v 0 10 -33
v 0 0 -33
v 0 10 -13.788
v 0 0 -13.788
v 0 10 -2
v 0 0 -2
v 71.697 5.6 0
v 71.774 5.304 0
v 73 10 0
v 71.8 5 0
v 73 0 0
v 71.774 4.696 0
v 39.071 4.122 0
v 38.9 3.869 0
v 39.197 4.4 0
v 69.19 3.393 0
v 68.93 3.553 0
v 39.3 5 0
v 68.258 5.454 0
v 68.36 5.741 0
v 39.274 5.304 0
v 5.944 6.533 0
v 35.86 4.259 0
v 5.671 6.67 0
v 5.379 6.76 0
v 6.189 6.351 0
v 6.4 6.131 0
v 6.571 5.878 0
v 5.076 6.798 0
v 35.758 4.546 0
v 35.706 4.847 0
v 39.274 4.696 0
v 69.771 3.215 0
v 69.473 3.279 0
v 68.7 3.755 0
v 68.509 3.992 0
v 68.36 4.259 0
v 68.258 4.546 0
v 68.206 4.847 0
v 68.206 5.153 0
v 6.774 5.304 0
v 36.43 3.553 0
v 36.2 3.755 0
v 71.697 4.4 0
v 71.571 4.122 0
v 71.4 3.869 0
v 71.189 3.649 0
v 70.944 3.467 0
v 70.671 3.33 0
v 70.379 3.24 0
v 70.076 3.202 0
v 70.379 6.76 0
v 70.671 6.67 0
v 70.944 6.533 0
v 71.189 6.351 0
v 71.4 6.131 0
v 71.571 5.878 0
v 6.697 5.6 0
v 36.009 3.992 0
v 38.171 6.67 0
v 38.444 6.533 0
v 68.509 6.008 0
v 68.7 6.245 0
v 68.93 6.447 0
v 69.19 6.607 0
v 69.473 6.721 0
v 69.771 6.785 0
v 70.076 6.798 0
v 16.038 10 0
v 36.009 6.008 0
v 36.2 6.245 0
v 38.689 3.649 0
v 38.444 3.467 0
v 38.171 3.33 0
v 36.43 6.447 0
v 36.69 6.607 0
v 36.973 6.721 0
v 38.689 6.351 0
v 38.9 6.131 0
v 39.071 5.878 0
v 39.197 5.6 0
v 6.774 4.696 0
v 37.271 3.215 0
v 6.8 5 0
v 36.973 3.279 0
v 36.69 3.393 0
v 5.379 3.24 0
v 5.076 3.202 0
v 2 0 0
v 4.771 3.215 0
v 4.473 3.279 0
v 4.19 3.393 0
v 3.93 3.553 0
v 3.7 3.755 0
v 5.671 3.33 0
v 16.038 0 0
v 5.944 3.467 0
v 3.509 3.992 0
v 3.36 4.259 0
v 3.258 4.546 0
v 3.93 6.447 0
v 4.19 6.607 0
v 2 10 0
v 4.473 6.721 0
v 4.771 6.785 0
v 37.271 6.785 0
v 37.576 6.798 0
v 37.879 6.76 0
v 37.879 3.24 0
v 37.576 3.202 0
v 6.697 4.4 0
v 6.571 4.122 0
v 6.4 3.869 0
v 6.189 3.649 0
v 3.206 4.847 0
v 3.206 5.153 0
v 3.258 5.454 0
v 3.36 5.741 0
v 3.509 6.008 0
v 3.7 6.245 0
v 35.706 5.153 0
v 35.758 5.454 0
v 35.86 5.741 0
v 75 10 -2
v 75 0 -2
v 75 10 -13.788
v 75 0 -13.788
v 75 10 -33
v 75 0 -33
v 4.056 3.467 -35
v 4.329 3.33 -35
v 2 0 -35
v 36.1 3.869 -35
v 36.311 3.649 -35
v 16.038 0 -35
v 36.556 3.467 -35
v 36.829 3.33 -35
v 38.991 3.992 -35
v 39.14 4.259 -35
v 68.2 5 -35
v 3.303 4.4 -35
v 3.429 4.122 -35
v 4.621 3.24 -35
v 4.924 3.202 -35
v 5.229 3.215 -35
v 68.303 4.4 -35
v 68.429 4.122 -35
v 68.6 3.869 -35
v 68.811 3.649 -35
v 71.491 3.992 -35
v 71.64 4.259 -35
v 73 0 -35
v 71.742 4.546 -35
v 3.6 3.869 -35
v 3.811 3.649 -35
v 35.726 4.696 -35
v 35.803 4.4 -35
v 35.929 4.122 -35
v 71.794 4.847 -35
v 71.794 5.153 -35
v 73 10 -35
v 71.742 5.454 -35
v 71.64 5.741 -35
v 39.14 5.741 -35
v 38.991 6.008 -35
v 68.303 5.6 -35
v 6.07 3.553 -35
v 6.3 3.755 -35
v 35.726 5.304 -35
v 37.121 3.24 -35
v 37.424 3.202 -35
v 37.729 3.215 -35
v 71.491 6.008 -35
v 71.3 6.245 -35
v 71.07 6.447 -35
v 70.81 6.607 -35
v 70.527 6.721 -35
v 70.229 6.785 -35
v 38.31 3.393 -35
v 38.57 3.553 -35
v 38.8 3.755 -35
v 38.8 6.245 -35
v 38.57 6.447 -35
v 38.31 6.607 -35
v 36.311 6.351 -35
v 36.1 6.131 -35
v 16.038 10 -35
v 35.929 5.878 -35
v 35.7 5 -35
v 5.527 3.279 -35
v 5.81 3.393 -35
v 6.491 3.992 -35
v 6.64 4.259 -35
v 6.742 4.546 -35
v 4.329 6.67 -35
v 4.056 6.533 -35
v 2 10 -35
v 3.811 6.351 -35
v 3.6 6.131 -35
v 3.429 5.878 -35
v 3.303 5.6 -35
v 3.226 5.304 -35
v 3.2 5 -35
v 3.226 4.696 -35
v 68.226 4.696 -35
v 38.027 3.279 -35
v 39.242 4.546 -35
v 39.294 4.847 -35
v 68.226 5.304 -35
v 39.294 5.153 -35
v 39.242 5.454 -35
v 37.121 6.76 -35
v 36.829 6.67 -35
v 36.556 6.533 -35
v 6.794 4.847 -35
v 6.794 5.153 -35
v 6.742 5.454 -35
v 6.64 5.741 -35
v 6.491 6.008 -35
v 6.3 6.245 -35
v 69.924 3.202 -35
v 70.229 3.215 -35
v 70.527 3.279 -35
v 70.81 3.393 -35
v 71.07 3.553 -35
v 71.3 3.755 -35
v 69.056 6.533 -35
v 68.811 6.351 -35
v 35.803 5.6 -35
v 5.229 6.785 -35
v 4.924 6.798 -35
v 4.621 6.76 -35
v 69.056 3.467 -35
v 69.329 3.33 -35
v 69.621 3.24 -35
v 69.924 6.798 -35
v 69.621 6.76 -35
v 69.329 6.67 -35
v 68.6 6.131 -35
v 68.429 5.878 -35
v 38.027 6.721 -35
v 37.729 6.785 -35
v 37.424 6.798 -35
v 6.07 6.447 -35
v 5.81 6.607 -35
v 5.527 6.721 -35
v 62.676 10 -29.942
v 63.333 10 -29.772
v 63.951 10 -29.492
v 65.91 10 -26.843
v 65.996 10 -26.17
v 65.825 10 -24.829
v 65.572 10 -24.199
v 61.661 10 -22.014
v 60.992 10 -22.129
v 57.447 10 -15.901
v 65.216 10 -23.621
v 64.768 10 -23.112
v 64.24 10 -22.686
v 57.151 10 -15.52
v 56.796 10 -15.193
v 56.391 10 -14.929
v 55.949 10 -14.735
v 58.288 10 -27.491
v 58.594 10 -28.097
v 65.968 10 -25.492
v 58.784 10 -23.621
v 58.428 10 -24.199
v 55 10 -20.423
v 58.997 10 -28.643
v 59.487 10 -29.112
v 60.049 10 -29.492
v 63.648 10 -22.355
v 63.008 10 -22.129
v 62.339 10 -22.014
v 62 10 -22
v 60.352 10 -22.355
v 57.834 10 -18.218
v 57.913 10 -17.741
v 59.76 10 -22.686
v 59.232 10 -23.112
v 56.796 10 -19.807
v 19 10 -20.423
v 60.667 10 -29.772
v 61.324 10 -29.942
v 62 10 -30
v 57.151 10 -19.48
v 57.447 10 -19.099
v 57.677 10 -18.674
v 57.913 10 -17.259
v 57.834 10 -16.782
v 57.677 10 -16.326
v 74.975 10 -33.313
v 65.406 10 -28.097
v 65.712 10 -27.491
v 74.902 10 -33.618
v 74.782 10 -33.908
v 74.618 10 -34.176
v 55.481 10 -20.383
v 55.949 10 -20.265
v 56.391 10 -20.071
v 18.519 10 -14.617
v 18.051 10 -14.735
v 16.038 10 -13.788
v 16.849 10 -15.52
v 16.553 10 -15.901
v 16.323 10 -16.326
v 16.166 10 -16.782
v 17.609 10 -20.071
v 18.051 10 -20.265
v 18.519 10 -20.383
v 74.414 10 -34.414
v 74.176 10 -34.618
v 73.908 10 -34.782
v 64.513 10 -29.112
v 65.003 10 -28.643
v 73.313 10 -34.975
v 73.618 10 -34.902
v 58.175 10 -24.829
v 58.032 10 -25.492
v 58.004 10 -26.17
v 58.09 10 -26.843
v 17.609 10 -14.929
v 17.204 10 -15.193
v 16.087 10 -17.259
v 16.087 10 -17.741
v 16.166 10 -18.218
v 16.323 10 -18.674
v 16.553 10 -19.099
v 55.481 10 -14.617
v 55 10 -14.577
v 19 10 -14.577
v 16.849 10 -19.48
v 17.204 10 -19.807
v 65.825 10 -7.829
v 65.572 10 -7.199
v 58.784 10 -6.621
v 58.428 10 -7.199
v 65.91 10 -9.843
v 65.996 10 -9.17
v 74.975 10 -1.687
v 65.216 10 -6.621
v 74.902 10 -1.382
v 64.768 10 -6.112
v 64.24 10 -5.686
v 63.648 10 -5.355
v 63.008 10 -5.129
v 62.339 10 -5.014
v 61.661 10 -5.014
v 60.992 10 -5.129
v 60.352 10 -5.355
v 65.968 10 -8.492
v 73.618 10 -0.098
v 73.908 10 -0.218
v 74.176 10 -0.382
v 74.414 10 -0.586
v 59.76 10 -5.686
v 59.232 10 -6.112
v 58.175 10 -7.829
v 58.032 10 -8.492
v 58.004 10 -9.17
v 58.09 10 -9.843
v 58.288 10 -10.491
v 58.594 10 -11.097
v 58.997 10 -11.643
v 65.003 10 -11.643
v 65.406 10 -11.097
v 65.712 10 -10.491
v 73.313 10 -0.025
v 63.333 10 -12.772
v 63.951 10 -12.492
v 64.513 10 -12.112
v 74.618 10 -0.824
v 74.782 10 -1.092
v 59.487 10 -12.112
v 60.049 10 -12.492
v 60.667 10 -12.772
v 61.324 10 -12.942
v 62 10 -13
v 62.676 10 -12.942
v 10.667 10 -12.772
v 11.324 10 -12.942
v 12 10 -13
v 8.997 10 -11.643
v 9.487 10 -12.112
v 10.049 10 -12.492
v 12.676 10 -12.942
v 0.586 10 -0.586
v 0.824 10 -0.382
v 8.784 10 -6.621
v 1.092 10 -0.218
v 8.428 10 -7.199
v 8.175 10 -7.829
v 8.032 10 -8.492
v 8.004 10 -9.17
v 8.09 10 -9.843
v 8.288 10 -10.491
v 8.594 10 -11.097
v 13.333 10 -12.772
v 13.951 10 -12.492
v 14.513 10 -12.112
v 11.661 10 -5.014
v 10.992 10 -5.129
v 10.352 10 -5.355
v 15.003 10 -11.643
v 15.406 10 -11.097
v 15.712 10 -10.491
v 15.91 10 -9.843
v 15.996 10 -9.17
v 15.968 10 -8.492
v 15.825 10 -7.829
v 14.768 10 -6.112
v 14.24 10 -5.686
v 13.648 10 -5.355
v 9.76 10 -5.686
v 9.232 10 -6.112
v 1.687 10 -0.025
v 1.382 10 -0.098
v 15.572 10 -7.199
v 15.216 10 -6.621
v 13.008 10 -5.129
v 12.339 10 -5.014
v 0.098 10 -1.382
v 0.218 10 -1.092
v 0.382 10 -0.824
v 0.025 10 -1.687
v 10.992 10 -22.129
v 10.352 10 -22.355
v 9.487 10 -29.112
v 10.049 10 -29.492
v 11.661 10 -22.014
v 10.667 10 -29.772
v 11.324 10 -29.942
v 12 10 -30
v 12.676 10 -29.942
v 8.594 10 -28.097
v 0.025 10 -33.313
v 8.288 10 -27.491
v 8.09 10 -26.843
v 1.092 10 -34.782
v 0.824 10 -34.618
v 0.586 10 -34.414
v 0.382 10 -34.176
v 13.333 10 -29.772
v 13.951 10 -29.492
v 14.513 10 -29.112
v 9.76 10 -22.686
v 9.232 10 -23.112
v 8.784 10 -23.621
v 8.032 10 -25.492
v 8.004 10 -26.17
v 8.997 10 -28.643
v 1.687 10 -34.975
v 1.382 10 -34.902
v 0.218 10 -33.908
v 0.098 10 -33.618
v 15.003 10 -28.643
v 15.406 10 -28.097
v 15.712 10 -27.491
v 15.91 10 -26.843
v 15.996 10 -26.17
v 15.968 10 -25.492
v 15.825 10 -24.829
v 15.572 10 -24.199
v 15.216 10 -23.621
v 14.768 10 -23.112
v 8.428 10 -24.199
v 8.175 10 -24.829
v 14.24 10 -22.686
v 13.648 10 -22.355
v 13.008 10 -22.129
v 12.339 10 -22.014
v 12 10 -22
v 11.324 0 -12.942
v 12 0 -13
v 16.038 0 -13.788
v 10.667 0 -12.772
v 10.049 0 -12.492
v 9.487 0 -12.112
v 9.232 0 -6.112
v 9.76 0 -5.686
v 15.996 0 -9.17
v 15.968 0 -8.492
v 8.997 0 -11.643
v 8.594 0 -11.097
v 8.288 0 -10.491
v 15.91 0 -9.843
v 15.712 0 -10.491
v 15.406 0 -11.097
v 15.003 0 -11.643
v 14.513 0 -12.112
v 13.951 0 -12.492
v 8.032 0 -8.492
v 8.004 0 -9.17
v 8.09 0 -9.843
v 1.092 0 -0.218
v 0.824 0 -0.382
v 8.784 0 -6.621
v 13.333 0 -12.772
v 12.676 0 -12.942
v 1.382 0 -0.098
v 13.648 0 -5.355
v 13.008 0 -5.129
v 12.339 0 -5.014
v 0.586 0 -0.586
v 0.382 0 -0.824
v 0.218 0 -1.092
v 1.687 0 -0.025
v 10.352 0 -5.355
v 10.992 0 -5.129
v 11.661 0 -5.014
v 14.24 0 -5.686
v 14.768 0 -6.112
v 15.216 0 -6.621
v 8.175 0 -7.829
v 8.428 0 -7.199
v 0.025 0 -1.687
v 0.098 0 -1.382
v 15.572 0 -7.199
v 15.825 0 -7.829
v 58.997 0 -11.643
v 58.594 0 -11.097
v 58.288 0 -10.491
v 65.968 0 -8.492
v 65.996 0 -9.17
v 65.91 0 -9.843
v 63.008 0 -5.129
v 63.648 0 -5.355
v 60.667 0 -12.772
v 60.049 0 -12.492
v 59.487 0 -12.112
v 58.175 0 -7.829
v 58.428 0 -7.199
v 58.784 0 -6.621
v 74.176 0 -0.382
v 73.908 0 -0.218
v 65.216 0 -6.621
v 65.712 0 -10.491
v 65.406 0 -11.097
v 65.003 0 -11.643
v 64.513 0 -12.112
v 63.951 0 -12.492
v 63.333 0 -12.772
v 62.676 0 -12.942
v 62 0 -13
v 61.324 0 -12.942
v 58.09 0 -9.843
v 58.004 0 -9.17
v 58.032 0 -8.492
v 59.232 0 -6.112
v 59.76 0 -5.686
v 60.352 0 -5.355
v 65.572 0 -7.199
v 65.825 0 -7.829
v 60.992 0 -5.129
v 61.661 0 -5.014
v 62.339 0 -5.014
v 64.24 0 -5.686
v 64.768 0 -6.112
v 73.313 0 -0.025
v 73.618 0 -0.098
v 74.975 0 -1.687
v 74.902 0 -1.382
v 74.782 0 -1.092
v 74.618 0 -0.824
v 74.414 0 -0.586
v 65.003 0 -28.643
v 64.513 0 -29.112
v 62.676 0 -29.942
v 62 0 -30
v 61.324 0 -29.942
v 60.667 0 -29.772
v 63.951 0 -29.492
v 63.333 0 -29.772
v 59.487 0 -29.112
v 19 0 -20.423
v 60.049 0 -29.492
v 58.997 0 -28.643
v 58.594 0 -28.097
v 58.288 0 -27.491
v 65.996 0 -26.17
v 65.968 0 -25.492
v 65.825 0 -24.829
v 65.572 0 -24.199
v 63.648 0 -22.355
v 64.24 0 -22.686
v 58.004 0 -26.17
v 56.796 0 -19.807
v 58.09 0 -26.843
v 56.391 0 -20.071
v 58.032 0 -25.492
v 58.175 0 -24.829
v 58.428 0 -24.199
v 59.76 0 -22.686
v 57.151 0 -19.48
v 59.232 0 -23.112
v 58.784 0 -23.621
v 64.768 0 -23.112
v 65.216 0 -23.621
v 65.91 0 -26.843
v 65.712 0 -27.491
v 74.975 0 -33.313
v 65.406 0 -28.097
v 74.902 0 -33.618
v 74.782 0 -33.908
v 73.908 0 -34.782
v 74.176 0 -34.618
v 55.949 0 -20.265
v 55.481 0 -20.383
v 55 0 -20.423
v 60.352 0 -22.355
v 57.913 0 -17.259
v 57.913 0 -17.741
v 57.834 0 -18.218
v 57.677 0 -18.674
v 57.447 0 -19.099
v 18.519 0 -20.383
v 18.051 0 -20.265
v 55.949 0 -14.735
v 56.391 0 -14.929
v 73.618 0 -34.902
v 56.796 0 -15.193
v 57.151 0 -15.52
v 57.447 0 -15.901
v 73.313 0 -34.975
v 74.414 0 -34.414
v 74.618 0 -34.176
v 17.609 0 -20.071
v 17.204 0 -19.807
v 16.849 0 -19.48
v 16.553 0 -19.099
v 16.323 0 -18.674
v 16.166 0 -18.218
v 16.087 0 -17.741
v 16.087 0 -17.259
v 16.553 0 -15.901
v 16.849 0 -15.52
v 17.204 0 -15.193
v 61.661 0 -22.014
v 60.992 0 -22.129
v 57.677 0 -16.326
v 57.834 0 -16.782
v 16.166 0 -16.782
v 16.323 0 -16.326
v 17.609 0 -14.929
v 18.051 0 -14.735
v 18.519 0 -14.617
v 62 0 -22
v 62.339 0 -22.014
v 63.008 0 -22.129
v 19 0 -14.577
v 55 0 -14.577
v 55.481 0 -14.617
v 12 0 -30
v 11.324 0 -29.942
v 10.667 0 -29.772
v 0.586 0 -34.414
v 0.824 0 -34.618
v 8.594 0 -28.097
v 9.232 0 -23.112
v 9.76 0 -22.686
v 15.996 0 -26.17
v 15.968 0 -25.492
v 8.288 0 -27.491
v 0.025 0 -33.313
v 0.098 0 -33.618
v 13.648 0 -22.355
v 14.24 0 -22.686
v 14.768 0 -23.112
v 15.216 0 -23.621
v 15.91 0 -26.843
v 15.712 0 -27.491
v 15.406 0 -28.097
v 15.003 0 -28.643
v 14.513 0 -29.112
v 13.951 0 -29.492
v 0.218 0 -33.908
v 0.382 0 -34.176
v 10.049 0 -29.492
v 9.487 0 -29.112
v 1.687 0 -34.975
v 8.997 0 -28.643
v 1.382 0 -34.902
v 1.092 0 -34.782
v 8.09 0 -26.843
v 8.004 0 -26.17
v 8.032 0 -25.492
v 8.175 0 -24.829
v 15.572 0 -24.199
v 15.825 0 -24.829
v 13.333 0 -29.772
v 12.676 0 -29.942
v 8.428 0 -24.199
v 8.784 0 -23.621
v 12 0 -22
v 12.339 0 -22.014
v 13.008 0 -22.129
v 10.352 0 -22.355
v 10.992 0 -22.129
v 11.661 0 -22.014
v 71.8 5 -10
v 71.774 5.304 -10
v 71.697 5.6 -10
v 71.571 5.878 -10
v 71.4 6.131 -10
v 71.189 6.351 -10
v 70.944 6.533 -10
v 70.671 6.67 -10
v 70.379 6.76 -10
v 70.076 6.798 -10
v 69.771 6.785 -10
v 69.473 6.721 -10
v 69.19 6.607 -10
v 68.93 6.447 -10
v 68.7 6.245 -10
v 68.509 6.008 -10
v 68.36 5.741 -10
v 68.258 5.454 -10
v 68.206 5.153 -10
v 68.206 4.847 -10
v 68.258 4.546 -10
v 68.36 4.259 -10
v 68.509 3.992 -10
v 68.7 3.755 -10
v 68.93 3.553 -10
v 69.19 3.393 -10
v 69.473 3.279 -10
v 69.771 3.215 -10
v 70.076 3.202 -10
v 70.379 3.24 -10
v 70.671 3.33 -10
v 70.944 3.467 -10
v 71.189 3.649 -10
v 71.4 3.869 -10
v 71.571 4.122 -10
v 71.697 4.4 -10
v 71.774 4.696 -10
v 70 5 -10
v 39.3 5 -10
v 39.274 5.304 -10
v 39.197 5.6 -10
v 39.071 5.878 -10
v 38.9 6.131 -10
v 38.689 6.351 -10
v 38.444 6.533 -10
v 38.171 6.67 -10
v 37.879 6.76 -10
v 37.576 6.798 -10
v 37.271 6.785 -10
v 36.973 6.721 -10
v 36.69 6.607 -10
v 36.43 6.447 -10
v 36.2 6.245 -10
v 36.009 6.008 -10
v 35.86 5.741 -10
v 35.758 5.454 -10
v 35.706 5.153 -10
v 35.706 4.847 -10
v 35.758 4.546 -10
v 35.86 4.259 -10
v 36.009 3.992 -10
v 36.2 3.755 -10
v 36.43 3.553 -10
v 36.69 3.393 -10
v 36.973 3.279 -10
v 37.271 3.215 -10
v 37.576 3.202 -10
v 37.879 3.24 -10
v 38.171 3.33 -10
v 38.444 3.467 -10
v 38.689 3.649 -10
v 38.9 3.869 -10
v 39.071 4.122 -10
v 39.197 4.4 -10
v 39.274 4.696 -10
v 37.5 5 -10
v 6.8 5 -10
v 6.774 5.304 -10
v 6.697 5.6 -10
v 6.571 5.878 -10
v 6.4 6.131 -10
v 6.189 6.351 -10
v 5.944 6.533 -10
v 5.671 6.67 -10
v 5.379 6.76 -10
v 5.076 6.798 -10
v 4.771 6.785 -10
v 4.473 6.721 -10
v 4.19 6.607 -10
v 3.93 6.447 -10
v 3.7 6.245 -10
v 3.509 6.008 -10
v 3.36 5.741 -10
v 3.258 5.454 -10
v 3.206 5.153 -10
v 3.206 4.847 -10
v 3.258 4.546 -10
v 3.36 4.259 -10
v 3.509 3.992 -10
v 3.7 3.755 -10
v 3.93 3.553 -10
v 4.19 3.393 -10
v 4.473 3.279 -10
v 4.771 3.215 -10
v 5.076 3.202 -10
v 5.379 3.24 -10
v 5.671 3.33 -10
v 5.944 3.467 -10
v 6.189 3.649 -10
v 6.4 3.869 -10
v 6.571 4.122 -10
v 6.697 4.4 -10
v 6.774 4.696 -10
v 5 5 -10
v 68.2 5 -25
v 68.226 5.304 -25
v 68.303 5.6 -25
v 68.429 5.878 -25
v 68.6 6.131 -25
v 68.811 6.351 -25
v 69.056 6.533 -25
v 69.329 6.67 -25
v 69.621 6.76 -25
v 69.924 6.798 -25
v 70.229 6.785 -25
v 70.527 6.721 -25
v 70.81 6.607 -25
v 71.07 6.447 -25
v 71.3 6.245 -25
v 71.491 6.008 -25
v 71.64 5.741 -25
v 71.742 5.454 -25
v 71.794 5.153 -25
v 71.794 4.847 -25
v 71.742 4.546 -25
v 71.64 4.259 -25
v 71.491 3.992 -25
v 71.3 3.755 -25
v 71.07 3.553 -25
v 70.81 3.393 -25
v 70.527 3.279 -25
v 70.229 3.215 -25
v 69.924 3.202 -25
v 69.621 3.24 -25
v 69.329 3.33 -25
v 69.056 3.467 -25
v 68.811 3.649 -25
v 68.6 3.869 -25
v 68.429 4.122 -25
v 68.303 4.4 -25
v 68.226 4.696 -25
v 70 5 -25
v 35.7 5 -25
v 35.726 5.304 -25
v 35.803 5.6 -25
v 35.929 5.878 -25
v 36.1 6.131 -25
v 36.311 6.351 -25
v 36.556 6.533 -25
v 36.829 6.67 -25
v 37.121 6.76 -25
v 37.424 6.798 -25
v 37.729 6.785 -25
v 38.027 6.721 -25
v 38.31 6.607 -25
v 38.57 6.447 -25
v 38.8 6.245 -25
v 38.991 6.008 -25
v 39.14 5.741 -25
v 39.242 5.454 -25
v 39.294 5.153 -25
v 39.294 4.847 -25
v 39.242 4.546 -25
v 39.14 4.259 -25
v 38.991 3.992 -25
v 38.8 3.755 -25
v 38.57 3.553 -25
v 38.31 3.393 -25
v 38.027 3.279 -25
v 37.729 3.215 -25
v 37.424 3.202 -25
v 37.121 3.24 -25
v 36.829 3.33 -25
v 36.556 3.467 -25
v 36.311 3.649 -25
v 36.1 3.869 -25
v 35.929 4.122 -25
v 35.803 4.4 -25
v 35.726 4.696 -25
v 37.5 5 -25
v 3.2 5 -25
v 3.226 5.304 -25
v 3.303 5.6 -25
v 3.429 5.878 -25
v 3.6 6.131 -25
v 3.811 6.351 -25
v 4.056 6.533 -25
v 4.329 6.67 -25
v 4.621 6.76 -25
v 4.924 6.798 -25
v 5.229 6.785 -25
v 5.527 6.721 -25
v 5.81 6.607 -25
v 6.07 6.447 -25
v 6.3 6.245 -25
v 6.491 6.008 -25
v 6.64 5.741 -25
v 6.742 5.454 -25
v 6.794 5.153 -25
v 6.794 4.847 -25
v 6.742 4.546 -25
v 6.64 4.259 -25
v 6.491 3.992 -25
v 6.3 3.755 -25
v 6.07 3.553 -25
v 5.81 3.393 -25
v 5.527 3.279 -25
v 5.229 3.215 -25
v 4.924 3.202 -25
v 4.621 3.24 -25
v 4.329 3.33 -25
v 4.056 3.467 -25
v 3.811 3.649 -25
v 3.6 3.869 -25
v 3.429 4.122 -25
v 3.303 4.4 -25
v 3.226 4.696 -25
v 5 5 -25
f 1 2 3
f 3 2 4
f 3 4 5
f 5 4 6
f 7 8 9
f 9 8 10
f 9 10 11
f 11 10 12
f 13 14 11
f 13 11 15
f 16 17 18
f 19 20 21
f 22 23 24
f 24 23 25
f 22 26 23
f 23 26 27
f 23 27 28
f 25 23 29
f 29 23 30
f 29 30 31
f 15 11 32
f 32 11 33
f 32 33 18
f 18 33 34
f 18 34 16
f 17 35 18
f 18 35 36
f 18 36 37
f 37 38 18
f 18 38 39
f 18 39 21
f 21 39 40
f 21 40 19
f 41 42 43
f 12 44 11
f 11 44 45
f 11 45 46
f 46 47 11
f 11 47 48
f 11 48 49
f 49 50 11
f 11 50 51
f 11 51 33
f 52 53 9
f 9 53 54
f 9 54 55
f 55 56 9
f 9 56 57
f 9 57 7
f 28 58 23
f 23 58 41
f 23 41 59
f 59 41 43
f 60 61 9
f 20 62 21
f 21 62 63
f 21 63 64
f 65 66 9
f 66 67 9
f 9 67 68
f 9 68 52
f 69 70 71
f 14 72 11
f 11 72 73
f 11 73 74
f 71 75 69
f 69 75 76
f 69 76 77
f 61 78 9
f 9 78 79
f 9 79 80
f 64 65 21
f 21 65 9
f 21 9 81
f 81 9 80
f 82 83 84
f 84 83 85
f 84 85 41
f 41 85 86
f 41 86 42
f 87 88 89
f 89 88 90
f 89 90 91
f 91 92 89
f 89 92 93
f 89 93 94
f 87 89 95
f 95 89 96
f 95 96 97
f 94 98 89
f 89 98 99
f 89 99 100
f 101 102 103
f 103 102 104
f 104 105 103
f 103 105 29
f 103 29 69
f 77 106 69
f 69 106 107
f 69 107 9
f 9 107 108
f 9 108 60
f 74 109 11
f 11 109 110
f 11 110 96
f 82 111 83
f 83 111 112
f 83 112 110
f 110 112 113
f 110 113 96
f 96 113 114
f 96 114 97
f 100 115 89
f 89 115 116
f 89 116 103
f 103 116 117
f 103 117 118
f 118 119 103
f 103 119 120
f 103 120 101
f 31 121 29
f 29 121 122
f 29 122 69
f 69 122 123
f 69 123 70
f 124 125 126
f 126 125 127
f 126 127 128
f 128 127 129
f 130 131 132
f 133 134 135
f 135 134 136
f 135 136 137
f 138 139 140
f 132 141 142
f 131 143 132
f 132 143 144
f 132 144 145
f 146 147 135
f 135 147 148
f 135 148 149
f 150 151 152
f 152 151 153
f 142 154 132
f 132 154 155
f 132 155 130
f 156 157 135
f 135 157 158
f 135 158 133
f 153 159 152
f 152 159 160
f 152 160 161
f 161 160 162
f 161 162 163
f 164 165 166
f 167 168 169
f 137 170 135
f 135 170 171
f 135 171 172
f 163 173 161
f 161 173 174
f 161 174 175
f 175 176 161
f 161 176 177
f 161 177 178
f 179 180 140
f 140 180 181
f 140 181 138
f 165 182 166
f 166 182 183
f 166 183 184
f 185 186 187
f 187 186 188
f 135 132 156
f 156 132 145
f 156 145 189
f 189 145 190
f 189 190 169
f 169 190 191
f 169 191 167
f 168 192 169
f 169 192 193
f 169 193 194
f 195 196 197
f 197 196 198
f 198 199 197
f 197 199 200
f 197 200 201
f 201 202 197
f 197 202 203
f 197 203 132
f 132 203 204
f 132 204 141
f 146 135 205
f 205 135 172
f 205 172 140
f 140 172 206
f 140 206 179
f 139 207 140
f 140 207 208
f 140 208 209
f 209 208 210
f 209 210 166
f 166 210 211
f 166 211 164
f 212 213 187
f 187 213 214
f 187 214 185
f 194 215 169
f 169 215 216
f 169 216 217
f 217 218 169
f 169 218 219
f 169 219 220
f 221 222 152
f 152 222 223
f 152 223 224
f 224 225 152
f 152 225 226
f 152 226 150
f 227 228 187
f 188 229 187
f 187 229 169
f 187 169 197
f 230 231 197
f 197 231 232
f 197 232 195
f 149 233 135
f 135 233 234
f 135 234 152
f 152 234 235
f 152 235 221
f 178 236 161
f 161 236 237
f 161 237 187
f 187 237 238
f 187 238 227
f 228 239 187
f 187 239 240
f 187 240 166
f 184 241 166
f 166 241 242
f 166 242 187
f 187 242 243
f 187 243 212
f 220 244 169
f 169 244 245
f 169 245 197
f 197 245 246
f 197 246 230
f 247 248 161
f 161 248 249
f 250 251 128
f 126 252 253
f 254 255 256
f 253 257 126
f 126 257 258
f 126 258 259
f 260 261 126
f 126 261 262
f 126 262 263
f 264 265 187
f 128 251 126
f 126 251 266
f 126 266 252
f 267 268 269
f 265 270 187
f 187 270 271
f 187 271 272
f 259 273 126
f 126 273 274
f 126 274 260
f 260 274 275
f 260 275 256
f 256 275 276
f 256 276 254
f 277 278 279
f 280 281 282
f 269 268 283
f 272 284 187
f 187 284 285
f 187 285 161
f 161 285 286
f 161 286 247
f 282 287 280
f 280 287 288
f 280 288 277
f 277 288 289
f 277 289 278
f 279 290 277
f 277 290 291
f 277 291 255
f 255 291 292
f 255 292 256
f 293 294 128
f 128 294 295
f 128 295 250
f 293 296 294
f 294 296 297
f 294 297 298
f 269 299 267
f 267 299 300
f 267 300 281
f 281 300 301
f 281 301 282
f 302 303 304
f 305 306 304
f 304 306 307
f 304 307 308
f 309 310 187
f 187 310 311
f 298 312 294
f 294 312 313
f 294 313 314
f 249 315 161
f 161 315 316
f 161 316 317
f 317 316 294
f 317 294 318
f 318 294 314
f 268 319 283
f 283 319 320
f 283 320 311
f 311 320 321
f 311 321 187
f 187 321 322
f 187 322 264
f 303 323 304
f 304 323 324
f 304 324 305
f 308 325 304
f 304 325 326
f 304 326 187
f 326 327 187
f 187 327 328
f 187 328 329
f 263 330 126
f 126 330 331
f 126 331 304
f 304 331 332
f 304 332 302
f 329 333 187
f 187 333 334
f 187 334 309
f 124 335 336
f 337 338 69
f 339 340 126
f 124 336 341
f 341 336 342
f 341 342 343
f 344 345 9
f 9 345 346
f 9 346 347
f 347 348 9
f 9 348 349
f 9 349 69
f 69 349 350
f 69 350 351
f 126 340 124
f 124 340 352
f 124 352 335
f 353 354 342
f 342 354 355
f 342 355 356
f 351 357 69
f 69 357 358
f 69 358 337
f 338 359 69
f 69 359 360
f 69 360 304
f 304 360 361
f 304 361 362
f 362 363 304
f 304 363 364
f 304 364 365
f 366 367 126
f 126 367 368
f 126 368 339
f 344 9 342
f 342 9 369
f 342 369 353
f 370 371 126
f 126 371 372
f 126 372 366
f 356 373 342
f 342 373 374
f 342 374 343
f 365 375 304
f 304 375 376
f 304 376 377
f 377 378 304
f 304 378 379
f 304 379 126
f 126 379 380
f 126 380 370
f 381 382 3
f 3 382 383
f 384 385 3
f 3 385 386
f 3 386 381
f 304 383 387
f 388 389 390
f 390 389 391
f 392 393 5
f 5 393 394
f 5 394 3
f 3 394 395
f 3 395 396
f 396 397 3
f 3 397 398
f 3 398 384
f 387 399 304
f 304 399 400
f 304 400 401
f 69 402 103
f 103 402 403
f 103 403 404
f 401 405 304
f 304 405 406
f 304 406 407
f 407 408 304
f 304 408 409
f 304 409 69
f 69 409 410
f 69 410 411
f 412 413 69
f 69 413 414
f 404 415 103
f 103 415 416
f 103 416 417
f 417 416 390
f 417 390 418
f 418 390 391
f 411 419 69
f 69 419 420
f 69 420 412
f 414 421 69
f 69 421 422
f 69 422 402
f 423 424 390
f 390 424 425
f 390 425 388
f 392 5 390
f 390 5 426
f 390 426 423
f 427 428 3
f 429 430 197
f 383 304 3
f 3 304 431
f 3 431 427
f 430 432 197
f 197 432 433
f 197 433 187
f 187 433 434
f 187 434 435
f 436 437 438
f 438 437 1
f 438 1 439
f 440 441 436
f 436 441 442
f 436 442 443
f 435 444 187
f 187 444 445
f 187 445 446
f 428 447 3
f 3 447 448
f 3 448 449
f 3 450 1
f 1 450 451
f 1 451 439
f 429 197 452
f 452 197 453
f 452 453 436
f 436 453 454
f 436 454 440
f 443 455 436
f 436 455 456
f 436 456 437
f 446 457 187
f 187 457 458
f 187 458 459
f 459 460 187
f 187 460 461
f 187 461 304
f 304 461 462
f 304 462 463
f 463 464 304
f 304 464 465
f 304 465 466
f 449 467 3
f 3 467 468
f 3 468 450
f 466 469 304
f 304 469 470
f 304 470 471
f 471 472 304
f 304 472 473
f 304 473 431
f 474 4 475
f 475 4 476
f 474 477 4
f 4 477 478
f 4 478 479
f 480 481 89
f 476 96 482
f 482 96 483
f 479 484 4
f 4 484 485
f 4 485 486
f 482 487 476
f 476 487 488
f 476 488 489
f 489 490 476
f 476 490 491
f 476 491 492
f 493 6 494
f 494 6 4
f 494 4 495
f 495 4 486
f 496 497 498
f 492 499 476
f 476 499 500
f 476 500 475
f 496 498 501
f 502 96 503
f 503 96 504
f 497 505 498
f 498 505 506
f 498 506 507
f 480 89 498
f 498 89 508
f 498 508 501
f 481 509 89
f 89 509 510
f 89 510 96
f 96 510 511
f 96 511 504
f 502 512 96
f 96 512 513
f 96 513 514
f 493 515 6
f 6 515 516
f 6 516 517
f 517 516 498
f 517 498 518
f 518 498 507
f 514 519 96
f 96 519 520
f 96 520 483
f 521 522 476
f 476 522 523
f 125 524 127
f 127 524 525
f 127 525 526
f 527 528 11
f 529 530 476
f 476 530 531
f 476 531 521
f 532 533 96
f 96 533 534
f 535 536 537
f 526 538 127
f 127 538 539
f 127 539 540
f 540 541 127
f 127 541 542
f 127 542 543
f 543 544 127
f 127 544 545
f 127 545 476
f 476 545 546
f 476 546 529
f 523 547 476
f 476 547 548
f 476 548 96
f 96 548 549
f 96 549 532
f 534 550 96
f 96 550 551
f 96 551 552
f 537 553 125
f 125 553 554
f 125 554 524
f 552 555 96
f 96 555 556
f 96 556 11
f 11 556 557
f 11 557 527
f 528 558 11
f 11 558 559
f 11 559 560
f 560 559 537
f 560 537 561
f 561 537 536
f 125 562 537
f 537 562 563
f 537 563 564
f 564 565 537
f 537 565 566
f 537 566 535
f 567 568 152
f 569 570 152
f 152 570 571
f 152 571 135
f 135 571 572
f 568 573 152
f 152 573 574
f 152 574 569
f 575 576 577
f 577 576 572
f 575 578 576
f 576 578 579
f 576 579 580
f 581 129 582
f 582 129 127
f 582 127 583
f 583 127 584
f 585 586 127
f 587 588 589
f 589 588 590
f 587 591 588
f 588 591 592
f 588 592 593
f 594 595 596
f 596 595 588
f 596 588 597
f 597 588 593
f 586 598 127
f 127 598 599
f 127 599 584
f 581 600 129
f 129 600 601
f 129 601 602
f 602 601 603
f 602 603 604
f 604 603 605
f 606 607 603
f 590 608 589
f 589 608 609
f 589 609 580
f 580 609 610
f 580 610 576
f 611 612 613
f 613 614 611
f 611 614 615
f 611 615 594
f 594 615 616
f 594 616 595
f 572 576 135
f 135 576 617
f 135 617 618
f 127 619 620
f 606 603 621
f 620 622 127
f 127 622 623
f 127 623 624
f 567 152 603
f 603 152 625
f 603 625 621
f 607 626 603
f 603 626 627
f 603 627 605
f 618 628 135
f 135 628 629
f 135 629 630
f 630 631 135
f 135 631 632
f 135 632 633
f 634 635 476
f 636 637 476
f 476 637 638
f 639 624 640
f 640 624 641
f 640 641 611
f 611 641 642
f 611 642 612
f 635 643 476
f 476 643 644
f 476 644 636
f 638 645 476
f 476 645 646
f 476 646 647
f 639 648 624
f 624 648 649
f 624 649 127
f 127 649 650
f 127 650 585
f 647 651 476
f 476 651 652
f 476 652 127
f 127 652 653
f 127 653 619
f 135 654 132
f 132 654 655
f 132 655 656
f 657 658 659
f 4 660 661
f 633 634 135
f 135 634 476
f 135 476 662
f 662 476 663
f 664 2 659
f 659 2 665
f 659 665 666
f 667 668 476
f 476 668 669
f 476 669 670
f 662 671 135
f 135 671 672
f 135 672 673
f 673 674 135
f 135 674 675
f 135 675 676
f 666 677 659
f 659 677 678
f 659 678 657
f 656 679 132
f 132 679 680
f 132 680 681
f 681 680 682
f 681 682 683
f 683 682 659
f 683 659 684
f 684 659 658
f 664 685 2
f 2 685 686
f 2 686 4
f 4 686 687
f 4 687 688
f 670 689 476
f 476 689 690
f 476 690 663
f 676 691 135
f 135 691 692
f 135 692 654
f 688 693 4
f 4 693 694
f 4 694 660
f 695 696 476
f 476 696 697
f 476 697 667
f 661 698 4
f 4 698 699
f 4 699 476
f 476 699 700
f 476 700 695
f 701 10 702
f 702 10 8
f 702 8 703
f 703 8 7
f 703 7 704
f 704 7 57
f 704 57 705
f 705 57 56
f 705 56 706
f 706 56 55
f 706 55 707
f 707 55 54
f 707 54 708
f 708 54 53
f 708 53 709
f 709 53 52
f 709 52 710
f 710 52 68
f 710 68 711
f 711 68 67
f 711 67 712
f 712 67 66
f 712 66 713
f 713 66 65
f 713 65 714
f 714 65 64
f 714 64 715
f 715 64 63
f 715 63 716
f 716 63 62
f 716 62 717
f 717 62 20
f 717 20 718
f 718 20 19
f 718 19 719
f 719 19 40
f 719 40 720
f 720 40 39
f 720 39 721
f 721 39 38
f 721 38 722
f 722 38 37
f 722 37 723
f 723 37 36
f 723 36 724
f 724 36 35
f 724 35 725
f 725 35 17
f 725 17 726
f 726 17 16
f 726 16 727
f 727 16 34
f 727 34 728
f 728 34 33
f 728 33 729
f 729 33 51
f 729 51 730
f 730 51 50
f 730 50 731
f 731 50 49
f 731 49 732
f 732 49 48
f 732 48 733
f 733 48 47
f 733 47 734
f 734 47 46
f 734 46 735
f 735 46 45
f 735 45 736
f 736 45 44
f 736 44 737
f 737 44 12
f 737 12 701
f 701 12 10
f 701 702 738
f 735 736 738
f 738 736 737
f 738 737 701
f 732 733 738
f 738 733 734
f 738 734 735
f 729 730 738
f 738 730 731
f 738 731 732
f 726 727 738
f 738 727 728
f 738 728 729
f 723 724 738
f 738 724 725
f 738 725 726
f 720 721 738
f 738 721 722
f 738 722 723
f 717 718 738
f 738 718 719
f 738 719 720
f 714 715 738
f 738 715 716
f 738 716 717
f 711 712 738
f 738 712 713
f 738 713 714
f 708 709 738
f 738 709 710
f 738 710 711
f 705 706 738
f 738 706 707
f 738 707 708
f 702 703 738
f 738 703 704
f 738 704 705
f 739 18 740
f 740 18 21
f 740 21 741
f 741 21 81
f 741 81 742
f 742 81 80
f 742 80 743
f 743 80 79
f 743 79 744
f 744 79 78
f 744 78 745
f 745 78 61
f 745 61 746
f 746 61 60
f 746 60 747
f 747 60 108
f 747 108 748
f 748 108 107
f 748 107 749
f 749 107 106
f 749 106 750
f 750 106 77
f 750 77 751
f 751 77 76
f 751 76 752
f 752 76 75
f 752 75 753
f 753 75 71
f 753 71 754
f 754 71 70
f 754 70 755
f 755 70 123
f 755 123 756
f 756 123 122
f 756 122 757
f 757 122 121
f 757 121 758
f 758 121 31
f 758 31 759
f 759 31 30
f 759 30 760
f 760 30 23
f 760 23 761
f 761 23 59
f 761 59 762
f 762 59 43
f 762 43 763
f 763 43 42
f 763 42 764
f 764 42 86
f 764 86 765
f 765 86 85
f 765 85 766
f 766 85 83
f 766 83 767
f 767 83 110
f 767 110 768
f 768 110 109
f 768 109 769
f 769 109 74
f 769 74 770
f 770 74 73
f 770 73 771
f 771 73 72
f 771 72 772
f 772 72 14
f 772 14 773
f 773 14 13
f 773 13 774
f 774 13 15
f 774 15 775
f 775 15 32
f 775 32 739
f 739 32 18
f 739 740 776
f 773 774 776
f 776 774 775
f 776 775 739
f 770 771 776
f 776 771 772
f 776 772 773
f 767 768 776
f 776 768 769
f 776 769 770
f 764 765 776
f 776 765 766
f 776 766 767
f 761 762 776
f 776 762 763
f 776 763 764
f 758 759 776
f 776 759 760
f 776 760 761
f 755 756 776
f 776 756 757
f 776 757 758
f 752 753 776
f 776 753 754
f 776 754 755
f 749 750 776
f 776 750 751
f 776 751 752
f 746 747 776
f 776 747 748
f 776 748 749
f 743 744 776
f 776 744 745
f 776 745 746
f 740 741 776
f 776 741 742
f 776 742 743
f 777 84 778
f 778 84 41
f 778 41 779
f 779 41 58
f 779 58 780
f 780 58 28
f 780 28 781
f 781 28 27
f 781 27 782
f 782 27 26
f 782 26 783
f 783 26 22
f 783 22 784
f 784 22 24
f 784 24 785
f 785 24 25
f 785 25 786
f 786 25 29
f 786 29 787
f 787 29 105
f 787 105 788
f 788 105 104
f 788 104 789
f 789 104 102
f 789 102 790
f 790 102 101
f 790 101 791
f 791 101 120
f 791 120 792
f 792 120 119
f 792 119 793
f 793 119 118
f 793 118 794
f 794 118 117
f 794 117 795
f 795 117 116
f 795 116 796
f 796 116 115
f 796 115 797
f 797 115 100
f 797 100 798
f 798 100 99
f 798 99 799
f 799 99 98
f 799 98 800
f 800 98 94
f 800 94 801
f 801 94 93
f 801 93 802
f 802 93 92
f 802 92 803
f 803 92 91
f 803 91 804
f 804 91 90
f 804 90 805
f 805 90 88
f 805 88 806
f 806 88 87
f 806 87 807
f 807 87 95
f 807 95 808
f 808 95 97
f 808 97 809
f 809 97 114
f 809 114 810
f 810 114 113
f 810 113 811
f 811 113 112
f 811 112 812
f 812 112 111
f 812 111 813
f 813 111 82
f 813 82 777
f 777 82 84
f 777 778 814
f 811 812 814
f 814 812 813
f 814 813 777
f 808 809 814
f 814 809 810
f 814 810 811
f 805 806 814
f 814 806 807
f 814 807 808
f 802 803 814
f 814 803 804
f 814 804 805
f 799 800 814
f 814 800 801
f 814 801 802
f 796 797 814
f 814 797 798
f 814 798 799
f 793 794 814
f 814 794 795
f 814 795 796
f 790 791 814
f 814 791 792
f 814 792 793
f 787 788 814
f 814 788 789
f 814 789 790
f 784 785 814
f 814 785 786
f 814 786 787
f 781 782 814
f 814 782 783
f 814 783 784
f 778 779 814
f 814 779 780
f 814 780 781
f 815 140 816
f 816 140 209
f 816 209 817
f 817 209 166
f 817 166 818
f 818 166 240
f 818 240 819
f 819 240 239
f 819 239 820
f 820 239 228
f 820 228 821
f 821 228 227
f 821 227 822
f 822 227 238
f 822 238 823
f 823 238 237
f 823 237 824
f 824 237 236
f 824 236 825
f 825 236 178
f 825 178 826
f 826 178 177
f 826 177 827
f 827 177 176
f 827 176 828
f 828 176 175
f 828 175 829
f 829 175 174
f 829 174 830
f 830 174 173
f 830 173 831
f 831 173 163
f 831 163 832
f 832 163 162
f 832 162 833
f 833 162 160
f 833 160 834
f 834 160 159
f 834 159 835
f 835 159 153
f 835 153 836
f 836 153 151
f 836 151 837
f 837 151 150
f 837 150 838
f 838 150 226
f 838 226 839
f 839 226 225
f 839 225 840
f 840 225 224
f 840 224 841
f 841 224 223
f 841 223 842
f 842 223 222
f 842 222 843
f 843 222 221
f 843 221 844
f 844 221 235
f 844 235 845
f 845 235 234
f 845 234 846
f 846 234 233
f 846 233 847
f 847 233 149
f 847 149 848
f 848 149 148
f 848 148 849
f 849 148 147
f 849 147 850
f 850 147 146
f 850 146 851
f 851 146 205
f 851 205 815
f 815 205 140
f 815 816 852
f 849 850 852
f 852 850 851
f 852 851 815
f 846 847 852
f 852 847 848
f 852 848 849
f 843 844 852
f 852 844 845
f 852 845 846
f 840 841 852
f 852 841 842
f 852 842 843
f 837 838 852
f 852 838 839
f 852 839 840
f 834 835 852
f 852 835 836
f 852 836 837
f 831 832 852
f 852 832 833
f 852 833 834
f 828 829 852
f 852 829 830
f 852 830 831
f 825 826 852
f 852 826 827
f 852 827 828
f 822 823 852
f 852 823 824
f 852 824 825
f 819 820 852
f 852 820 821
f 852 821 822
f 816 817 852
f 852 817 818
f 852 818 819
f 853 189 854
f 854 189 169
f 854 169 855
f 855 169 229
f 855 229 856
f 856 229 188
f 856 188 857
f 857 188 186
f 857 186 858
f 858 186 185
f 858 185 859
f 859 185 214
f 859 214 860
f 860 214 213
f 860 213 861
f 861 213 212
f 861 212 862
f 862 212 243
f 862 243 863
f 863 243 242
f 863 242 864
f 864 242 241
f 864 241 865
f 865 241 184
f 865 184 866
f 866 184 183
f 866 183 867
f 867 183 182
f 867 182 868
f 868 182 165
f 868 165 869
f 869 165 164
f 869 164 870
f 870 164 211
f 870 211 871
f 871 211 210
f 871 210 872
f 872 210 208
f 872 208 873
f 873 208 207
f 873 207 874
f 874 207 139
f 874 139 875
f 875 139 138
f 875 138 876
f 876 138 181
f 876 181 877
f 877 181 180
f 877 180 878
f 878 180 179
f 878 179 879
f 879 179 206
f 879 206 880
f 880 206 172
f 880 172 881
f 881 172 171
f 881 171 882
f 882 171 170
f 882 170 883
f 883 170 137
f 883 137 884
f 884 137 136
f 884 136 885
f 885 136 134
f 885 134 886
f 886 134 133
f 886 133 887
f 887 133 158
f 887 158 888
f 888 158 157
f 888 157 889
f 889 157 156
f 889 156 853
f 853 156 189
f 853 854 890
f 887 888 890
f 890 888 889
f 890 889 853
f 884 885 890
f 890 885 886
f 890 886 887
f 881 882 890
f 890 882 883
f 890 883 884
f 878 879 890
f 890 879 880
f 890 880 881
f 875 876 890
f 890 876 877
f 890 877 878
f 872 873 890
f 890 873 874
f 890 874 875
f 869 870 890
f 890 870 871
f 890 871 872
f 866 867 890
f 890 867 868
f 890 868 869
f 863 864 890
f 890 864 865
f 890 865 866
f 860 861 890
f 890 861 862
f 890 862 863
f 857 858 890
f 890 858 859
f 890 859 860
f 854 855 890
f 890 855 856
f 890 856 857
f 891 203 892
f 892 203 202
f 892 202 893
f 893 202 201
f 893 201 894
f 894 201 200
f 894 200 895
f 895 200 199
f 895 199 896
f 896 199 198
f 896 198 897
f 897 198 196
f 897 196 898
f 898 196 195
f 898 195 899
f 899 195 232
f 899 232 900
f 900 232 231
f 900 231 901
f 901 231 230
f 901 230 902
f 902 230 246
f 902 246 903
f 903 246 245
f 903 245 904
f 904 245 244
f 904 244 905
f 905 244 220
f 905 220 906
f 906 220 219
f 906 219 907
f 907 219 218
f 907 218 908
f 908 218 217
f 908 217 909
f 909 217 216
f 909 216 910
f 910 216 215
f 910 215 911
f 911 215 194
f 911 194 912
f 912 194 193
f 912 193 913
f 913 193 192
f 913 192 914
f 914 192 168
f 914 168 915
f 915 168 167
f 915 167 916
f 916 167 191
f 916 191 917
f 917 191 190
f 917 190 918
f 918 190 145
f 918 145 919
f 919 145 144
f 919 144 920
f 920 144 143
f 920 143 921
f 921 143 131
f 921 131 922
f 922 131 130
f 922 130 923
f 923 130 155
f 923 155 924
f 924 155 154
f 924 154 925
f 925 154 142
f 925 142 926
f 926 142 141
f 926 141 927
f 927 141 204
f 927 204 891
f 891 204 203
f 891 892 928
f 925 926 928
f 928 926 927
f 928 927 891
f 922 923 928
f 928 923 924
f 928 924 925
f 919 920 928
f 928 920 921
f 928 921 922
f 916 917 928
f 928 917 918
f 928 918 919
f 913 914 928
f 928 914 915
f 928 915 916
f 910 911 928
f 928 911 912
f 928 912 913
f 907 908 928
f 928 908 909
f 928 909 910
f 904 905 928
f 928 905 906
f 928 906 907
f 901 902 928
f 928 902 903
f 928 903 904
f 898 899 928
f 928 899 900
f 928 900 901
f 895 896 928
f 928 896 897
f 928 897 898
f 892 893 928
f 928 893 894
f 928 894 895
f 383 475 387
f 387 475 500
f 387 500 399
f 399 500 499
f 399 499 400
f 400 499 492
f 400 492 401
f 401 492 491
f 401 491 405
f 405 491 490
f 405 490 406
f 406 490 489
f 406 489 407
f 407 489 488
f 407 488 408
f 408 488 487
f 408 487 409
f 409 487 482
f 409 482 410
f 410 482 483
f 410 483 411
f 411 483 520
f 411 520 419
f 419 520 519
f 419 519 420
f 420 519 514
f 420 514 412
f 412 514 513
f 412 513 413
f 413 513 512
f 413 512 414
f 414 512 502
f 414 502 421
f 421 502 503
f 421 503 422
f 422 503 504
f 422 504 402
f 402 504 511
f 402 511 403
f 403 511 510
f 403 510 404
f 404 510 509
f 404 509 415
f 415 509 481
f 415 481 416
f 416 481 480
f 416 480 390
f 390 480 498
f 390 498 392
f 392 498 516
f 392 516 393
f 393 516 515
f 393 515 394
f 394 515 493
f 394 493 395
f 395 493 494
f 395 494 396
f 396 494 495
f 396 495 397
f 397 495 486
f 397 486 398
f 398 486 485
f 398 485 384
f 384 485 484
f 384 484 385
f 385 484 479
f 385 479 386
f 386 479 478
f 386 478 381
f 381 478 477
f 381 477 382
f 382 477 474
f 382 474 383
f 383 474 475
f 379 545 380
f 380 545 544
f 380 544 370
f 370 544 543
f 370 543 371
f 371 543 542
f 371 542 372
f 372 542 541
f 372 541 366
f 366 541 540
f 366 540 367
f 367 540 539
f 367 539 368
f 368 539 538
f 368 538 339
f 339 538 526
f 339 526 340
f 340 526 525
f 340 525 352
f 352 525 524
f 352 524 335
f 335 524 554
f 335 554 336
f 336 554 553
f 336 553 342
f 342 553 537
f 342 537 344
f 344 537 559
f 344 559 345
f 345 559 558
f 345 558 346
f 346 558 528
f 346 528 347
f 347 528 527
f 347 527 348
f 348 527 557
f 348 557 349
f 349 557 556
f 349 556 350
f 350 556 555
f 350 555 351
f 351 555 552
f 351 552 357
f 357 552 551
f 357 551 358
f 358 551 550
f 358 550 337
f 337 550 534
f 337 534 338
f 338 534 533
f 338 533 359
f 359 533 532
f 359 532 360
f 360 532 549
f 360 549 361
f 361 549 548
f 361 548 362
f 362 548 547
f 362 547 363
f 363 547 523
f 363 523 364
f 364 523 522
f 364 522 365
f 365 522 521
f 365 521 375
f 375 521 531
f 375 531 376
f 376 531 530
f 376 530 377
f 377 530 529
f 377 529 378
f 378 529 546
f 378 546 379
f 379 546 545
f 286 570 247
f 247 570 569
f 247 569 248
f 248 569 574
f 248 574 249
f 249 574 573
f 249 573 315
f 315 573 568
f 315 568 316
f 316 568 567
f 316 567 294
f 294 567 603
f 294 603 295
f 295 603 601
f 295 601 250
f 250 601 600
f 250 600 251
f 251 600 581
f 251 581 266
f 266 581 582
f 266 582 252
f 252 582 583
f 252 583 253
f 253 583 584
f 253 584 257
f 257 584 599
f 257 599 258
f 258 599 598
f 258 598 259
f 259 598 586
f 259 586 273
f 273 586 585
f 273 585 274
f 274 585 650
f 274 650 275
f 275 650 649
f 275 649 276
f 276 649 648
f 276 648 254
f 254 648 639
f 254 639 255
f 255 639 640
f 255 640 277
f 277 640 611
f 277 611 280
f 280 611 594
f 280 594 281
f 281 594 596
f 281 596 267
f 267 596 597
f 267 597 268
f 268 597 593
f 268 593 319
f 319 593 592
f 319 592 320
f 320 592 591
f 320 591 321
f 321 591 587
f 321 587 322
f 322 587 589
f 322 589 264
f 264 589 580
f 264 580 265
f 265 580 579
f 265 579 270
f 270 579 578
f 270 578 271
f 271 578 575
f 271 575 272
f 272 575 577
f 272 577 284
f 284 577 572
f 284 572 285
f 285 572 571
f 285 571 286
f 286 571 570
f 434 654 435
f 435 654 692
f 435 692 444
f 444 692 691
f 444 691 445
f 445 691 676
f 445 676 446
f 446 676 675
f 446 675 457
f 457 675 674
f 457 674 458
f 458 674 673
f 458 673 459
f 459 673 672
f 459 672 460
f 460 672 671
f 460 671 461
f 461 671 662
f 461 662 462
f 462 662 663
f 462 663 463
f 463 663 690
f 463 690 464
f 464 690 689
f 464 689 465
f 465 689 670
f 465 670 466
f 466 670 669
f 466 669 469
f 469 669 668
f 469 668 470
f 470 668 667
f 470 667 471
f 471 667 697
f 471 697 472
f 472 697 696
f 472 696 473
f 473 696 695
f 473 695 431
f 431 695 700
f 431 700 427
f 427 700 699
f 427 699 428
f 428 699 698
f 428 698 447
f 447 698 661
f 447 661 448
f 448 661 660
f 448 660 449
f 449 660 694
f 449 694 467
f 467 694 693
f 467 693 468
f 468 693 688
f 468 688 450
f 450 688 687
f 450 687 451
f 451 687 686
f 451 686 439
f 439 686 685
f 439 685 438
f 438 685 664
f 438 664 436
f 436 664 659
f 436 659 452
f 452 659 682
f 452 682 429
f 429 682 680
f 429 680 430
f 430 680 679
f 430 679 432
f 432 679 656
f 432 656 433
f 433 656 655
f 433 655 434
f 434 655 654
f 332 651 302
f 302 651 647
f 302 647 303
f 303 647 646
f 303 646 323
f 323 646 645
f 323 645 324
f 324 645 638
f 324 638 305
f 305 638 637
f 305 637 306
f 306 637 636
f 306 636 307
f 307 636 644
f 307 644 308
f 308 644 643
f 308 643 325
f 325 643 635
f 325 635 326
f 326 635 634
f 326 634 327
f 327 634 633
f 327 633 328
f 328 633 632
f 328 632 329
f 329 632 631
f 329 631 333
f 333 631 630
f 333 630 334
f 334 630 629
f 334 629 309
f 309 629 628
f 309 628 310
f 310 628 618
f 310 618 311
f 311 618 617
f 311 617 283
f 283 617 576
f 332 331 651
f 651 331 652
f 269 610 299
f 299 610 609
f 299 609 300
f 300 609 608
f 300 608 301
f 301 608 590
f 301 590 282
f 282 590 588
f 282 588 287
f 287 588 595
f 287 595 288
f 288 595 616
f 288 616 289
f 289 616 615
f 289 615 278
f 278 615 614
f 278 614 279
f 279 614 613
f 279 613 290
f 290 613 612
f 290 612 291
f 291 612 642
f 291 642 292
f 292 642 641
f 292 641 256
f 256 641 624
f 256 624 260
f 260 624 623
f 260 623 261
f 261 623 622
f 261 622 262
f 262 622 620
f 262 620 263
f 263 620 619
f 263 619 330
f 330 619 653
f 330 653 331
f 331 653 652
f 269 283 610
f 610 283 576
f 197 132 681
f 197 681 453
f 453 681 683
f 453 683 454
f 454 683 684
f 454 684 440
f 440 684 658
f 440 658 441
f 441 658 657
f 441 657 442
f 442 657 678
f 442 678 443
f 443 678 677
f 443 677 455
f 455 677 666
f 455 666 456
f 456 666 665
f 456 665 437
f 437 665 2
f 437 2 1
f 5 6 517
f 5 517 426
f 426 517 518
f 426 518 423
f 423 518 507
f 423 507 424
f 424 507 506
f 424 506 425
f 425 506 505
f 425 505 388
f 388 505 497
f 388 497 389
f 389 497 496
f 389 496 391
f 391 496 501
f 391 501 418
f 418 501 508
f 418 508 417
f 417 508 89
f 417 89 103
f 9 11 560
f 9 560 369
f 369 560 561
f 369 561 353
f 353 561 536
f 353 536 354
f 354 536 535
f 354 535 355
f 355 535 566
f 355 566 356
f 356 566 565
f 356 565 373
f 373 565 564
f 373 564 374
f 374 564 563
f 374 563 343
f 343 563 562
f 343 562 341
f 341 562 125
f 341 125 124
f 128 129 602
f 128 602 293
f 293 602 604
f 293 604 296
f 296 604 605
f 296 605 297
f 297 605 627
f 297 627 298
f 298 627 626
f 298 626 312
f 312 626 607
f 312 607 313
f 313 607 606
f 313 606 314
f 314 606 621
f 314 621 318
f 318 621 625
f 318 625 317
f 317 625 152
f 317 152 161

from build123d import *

# Parameters (mm, degrees)
SKETCH1_W           = 75
SKETCH1_H           = 35
BOSS_EXTRUDE1_DEPTH = 10
SKETCH2_R           = 1.8
CUT_EXTRUDE1_DEPTH  = 10
SKETCH3_R           = 1.8
CUT_EXTRUDE2_DEPTH  = 10
SKETCH4_R           = 4
CUT_EXTRUDE4_DEPTH  = 11
FILLET1_R           = 2


with BuildPart() as part:
    # Sketch1 → Boss-Extrude1 (new body)
    with BuildSketch(Plane(origin=(0, 0, 0), x_dir=(1, 0, 0), z_dir=(0, 1, 0))):
        with Locations((37.5, 17.5)):
            Rectangle(SKETCH1_W, SKETCH1_H)
    extrude(amount=BOSS_EXTRUDE1_DEPTH)

    # Sketch2 → Cut-Extrude1 (cut)
    with BuildSketch(Plane.XY):
        with Locations((5, 5)):
            Circle(SKETCH2_R)
        with Locations((37.5, 5)):
            Circle(SKETCH2_R)
        with Locations((70, 5)):
            Circle(SKETCH2_R)
    extrude(amount=-CUT_EXTRUDE1_DEPTH, mode=Mode.SUBTRACT)

    # Sketch3 → Cut-Extrude2 (cut)
    with BuildSketch(Plane(origin=(0, 0, -35), x_dir=(-1, 0, 0), z_dir=(0, 0, -1))):
        with Locations((-5, 5)):
            Circle(SKETCH3_R)
        with Locations((-37.5, 5)):
            Circle(SKETCH3_R)
        with Locations((-70, 5)):
            Circle(SKETCH3_R)
    extrude(amount=-CUT_EXTRUDE2_DEPTH, mode=Mode.SUBTRACT)

    # Sketch4 → Cut-Extrude4 (cut, through all)
    with BuildSketch(Plane.XZ):
        with Locations((12, -9)):
            Circle(SKETCH4_R)
        with Locations((62, -9)):
            Circle(SKETCH4_R)
        with Locations((62, -26)):
            Circle(SKETCH4_R)
        with Locations((12, -26)):
            Circle(SKETCH4_R)
        with BuildLine():
            Line((19, -14.576707994), (55, -14.576707994))
            ThreePointArc((55, -14.576707994), (57.923292006, -17.5), (55, -20.423292006))
            Line((55, -20.423292006), (19, -20.423292006))
            ThreePointArc((19, -20.423292006), (16.076707994, -17.5), (19, -14.576707994))
        make_face()
    extrude(amount=-CUT_EXTRUDE4_DEPTH, mode=Mode.SUBTRACT)

    # Fillet1
    fillet1_edges = [part.edges().sort_by_distance(p)[0] for p in [
        (0, 5, -35),
        (75, 5, -35),
        (75, 5, 0),
        (0, 5, 0),
    ]]
    fillet(fillet1_edges, radius=FILLET1_R)


solid = part.part
